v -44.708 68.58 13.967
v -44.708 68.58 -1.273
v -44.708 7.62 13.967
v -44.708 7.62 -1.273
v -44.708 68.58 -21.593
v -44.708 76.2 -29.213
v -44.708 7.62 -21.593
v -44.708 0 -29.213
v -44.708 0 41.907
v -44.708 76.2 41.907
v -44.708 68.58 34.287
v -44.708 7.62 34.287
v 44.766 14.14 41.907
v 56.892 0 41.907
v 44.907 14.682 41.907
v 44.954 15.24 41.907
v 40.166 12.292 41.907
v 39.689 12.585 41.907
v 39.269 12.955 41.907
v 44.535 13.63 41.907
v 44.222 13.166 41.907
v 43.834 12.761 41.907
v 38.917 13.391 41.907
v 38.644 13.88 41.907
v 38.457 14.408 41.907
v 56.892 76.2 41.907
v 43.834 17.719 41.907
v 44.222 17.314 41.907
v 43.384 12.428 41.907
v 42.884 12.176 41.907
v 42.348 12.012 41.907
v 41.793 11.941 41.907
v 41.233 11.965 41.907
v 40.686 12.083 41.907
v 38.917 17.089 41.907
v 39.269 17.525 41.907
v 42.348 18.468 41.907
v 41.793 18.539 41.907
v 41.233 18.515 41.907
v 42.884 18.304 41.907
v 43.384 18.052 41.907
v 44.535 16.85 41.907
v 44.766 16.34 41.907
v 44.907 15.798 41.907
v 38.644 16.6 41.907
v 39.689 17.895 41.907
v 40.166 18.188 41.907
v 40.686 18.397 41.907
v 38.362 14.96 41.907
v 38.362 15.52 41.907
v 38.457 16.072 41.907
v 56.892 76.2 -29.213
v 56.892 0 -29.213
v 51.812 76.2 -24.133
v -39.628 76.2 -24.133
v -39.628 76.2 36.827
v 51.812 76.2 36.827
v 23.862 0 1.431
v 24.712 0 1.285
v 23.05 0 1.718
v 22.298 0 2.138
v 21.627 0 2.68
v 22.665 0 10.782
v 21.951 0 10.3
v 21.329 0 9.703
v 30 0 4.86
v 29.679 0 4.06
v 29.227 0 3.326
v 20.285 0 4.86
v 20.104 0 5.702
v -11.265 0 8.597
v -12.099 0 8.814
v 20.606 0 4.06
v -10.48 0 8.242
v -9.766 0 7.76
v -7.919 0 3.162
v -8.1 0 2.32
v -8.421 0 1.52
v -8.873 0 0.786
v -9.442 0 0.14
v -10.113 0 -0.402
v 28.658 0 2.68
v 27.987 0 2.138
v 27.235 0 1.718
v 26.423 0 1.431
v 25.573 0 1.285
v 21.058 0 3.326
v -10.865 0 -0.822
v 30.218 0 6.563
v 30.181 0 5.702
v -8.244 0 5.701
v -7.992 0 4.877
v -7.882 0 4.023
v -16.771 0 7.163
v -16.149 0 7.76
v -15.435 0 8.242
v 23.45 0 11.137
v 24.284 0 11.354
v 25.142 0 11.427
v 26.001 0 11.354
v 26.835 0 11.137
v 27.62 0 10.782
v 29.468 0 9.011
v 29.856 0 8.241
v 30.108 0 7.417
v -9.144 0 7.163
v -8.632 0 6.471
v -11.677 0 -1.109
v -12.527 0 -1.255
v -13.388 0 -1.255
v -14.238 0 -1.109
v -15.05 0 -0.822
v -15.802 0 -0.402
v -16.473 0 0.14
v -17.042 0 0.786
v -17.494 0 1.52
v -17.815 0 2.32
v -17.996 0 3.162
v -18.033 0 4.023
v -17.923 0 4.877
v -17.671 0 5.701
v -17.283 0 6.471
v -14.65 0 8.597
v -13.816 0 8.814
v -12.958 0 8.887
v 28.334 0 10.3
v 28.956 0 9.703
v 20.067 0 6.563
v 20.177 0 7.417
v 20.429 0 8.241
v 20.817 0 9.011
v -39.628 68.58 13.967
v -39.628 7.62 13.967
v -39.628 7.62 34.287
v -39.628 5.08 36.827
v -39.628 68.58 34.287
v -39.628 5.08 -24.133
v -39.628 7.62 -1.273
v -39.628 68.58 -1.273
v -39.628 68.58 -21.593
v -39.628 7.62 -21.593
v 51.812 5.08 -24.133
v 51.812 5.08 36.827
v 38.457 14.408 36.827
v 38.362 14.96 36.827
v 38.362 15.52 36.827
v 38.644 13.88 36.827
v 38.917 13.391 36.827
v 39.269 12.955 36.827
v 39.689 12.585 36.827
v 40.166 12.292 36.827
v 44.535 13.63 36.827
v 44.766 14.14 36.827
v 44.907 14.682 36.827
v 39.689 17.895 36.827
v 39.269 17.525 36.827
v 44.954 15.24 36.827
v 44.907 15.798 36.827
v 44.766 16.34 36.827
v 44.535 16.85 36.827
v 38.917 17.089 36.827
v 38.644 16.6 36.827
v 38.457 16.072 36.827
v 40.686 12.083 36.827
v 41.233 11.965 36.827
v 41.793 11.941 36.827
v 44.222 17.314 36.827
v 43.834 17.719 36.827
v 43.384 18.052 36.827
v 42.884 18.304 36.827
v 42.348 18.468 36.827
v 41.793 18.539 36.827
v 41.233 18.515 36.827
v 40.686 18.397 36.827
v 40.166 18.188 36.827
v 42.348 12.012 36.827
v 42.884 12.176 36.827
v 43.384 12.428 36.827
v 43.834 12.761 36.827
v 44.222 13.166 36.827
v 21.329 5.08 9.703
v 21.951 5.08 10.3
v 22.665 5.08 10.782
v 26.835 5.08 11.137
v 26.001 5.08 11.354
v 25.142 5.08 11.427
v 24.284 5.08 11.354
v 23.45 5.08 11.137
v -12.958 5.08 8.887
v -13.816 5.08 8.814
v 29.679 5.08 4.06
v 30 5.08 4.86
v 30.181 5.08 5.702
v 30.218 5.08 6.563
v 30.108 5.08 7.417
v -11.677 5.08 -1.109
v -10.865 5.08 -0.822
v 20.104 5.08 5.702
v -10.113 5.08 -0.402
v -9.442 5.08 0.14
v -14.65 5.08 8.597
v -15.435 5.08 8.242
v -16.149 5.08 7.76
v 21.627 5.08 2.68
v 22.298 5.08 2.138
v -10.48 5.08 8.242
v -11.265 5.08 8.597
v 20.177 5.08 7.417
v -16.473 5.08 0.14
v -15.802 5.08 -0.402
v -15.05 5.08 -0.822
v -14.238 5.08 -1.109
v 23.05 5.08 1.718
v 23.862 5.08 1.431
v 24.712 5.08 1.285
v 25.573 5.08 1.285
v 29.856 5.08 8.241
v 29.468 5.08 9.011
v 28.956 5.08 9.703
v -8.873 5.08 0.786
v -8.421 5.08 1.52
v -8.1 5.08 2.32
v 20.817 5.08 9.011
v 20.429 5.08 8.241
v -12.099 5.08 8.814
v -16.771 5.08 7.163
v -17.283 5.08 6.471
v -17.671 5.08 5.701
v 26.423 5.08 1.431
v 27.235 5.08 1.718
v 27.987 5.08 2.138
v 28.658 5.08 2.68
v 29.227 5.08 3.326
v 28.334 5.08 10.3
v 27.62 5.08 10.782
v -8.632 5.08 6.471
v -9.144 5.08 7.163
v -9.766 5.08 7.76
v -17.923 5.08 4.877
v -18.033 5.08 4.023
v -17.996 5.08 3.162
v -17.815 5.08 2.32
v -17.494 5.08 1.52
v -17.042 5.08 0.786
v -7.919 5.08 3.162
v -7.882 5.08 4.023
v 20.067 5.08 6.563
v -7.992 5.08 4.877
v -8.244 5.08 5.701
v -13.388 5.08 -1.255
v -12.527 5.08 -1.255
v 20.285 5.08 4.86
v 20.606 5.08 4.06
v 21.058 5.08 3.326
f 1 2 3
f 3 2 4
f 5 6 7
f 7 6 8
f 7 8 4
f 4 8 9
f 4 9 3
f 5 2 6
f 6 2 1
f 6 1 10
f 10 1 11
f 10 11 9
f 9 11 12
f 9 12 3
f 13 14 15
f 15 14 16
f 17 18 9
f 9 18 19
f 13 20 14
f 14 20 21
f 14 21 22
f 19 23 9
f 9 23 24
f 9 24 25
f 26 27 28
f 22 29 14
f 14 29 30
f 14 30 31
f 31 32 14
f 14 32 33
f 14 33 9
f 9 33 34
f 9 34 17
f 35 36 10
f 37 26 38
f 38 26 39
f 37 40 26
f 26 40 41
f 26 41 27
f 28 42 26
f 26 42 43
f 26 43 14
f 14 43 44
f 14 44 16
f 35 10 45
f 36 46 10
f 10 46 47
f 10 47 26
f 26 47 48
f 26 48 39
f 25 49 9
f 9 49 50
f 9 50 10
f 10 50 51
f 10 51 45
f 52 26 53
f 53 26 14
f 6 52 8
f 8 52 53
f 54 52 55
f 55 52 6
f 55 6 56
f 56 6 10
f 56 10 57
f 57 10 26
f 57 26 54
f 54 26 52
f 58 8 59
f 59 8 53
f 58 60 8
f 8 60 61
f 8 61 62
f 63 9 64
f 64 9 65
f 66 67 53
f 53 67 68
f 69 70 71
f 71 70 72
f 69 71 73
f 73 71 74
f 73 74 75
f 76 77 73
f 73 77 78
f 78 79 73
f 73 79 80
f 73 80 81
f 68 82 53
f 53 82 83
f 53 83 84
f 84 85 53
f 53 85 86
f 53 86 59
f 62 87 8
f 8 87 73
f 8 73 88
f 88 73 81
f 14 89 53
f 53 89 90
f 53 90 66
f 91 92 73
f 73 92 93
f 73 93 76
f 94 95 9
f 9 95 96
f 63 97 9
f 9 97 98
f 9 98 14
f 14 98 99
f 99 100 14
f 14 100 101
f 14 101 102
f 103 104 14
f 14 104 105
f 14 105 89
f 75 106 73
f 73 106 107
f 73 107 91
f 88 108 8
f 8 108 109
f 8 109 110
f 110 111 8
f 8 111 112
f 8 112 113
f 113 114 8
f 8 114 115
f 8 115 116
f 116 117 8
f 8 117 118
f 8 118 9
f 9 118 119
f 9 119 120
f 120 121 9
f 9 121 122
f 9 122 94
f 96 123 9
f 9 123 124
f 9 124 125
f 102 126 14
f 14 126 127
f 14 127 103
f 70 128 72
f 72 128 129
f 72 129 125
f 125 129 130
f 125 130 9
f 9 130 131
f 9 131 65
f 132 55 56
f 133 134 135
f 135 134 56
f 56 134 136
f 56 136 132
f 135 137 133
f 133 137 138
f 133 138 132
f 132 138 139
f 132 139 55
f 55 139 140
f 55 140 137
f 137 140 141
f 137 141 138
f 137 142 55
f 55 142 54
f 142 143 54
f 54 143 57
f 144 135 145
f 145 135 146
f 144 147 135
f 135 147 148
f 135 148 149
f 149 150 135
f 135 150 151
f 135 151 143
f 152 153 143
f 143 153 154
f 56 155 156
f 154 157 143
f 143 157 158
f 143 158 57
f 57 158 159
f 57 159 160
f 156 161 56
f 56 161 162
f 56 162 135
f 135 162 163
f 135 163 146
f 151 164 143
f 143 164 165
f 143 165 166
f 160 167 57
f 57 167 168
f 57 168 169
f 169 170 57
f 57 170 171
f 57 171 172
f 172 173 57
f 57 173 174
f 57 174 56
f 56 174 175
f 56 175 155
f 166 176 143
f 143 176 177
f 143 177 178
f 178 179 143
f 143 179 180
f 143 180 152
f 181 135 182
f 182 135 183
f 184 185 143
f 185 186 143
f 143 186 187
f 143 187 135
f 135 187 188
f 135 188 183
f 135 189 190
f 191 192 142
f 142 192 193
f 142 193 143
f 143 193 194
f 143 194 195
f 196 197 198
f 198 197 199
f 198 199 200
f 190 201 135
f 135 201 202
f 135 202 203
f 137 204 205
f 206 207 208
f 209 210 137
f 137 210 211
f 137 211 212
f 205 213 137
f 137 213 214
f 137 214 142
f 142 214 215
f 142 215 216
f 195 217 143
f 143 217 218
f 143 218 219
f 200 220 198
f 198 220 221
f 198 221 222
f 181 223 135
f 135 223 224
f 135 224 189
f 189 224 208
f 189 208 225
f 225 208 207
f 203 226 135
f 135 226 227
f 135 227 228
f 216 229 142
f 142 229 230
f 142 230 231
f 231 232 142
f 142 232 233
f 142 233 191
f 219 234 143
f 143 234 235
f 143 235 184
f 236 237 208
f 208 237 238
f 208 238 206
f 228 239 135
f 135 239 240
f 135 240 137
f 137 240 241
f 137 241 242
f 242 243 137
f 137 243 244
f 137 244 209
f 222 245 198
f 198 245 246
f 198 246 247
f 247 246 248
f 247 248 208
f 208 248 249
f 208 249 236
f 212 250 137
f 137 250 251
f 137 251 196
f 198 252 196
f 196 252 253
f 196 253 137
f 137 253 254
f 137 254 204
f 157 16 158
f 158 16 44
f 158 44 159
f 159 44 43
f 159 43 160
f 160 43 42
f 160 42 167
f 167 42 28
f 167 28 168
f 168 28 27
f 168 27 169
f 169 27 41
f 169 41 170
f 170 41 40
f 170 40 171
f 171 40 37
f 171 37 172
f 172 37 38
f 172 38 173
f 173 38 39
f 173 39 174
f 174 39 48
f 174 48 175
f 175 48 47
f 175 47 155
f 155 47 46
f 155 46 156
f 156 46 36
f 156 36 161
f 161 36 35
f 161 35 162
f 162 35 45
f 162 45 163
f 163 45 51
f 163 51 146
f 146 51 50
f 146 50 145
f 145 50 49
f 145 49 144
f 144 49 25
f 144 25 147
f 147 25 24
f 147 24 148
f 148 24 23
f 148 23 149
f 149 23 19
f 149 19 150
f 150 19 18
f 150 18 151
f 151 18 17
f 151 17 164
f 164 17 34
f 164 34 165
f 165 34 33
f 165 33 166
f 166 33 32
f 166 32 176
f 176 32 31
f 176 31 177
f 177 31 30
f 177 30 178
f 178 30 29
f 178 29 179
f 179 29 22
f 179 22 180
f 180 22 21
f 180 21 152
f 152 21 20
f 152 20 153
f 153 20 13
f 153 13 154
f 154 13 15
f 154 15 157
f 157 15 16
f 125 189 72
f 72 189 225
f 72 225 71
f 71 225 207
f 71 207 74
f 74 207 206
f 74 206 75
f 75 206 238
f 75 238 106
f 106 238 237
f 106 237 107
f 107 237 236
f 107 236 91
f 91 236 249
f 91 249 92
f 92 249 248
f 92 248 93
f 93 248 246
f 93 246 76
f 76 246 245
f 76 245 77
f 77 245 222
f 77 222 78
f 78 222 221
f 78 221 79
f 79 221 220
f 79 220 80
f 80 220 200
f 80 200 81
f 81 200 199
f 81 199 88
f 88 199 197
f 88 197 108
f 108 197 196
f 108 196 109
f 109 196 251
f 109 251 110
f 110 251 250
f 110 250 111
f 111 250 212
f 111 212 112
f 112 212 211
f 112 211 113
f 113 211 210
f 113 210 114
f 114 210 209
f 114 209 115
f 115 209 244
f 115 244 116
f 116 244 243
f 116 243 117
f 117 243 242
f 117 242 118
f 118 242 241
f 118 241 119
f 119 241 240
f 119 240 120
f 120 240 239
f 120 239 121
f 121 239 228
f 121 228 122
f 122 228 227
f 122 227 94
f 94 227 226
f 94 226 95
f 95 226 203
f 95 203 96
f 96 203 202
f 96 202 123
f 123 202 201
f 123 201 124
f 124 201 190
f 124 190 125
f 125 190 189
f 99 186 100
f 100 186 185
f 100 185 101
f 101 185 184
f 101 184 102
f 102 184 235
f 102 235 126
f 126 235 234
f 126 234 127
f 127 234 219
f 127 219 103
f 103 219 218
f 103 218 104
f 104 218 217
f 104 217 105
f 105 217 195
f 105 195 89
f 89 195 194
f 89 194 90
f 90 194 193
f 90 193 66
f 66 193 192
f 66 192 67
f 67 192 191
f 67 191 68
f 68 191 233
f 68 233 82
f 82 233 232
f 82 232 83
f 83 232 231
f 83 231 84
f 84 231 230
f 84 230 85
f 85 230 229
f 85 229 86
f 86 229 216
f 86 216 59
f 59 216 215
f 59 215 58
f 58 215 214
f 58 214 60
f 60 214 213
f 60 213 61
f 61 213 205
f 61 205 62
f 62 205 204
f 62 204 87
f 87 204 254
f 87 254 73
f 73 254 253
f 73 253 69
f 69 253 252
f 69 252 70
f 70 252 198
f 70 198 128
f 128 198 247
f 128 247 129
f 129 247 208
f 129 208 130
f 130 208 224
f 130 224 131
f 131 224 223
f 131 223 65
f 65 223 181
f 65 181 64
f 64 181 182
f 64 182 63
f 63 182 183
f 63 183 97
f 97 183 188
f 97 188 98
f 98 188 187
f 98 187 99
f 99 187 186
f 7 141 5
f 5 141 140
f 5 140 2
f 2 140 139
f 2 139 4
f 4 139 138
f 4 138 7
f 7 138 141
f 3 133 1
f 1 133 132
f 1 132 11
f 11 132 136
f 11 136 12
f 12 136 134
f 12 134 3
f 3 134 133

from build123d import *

# Parameters (mm, degrees)
SKETCH2_W           = 101.6
SKETCH2_H           = 71.12
BOSS_EXTRUDE1_DEPTH = 76.2
SKETCH3_W           = 91.44
SKETCH3_H           = 60.96
CUT_EXTRUDE5_DEPTH  = 71.12
SKETCH5_R           = 3.302
CUT_EXTRUDE6_DEPTH  = 7.62
SKETCH7_R           = 5.08
CUT_EXTRUDE8_DEPTH  = 7.62
SKETCH8_W           = 20.32
SKETCH8_H           = 60.96
CUT_EXTRUDE9_DEPTH  = 7.62


with BuildPart() as part:
    # Sketch2 → Boss-Extrude1 (new body)
    with BuildSketch(Plane(origin=(0, 0, 0), x_dir=(1, 0, 0), z_dir=(0, 1, 0))):
        with Locations((6.092485814, -6.347086588)):
            Rectangle(SKETCH2_W, SKETCH2_H)
    extrude(amount=BOSS_EXTRUDE1_DEPTH)

    # Sketch3 → Cut-Extrude5 (cut)
    with BuildSketch(Plane(origin=(0, 76.2, 0), x_dir=(1, 0, 0), z_dir=(0, 1, 0))):
        with Locations((6.092485814, -6.347086588)):
            Rectangle(SKETCH3_W, SKETCH3_H)
    extrude(amount=-CUT_EXTRUDE5_DEPTH, mode=Mode.SUBTRACT)

    # Sketch5 → Cut-Extrude6 (cut)
    with BuildSketch(Plane.XY.offset(41.907086588)):
        with Locations((41.652485814, 15.24)):
            Circle(SKETCH5_R)
    extrude(amount=-CUT_EXTRUDE6_DEPTH, mode=Mode.SUBTRACT)

    # Sketch7 → Cut-Extrude8 (cut)
    with BuildSketch(Plane(origin=(0, 5.08, 0), x_dir=(1, 0, 0), z_dir=(0, 1, 0))):
        with Locations(Location((-12.957514186, -3.807086588, 0), (0, 0, 270))):
            Circle(SKETCH7_R)
        with Locations(Location((25.142485814, -6.347086588, 0), (0, 0, 270))):
            Circle(SKETCH7_R)
    extrude(amount=-CUT_EXTRUDE8_DEPTH, mode=Mode.SUBTRACT)

    # Sketch8 → Cut-Extrude9 (cut)
    with BuildSketch(Plane.ZY.offset(44.707514186)):
        with Locations((-11.432913412, 38.1)):
            Rectangle(SKETCH8_W, SKETCH8_H)
        with Locations((24.127086588, 38.1)):
            Rectangle(SKETCH8_W, SKETCH8_H)
    extrude(amount=-CUT_EXTRUDE9_DEPTH, mode=Mode.SUBTRACT)


solid = part.part
